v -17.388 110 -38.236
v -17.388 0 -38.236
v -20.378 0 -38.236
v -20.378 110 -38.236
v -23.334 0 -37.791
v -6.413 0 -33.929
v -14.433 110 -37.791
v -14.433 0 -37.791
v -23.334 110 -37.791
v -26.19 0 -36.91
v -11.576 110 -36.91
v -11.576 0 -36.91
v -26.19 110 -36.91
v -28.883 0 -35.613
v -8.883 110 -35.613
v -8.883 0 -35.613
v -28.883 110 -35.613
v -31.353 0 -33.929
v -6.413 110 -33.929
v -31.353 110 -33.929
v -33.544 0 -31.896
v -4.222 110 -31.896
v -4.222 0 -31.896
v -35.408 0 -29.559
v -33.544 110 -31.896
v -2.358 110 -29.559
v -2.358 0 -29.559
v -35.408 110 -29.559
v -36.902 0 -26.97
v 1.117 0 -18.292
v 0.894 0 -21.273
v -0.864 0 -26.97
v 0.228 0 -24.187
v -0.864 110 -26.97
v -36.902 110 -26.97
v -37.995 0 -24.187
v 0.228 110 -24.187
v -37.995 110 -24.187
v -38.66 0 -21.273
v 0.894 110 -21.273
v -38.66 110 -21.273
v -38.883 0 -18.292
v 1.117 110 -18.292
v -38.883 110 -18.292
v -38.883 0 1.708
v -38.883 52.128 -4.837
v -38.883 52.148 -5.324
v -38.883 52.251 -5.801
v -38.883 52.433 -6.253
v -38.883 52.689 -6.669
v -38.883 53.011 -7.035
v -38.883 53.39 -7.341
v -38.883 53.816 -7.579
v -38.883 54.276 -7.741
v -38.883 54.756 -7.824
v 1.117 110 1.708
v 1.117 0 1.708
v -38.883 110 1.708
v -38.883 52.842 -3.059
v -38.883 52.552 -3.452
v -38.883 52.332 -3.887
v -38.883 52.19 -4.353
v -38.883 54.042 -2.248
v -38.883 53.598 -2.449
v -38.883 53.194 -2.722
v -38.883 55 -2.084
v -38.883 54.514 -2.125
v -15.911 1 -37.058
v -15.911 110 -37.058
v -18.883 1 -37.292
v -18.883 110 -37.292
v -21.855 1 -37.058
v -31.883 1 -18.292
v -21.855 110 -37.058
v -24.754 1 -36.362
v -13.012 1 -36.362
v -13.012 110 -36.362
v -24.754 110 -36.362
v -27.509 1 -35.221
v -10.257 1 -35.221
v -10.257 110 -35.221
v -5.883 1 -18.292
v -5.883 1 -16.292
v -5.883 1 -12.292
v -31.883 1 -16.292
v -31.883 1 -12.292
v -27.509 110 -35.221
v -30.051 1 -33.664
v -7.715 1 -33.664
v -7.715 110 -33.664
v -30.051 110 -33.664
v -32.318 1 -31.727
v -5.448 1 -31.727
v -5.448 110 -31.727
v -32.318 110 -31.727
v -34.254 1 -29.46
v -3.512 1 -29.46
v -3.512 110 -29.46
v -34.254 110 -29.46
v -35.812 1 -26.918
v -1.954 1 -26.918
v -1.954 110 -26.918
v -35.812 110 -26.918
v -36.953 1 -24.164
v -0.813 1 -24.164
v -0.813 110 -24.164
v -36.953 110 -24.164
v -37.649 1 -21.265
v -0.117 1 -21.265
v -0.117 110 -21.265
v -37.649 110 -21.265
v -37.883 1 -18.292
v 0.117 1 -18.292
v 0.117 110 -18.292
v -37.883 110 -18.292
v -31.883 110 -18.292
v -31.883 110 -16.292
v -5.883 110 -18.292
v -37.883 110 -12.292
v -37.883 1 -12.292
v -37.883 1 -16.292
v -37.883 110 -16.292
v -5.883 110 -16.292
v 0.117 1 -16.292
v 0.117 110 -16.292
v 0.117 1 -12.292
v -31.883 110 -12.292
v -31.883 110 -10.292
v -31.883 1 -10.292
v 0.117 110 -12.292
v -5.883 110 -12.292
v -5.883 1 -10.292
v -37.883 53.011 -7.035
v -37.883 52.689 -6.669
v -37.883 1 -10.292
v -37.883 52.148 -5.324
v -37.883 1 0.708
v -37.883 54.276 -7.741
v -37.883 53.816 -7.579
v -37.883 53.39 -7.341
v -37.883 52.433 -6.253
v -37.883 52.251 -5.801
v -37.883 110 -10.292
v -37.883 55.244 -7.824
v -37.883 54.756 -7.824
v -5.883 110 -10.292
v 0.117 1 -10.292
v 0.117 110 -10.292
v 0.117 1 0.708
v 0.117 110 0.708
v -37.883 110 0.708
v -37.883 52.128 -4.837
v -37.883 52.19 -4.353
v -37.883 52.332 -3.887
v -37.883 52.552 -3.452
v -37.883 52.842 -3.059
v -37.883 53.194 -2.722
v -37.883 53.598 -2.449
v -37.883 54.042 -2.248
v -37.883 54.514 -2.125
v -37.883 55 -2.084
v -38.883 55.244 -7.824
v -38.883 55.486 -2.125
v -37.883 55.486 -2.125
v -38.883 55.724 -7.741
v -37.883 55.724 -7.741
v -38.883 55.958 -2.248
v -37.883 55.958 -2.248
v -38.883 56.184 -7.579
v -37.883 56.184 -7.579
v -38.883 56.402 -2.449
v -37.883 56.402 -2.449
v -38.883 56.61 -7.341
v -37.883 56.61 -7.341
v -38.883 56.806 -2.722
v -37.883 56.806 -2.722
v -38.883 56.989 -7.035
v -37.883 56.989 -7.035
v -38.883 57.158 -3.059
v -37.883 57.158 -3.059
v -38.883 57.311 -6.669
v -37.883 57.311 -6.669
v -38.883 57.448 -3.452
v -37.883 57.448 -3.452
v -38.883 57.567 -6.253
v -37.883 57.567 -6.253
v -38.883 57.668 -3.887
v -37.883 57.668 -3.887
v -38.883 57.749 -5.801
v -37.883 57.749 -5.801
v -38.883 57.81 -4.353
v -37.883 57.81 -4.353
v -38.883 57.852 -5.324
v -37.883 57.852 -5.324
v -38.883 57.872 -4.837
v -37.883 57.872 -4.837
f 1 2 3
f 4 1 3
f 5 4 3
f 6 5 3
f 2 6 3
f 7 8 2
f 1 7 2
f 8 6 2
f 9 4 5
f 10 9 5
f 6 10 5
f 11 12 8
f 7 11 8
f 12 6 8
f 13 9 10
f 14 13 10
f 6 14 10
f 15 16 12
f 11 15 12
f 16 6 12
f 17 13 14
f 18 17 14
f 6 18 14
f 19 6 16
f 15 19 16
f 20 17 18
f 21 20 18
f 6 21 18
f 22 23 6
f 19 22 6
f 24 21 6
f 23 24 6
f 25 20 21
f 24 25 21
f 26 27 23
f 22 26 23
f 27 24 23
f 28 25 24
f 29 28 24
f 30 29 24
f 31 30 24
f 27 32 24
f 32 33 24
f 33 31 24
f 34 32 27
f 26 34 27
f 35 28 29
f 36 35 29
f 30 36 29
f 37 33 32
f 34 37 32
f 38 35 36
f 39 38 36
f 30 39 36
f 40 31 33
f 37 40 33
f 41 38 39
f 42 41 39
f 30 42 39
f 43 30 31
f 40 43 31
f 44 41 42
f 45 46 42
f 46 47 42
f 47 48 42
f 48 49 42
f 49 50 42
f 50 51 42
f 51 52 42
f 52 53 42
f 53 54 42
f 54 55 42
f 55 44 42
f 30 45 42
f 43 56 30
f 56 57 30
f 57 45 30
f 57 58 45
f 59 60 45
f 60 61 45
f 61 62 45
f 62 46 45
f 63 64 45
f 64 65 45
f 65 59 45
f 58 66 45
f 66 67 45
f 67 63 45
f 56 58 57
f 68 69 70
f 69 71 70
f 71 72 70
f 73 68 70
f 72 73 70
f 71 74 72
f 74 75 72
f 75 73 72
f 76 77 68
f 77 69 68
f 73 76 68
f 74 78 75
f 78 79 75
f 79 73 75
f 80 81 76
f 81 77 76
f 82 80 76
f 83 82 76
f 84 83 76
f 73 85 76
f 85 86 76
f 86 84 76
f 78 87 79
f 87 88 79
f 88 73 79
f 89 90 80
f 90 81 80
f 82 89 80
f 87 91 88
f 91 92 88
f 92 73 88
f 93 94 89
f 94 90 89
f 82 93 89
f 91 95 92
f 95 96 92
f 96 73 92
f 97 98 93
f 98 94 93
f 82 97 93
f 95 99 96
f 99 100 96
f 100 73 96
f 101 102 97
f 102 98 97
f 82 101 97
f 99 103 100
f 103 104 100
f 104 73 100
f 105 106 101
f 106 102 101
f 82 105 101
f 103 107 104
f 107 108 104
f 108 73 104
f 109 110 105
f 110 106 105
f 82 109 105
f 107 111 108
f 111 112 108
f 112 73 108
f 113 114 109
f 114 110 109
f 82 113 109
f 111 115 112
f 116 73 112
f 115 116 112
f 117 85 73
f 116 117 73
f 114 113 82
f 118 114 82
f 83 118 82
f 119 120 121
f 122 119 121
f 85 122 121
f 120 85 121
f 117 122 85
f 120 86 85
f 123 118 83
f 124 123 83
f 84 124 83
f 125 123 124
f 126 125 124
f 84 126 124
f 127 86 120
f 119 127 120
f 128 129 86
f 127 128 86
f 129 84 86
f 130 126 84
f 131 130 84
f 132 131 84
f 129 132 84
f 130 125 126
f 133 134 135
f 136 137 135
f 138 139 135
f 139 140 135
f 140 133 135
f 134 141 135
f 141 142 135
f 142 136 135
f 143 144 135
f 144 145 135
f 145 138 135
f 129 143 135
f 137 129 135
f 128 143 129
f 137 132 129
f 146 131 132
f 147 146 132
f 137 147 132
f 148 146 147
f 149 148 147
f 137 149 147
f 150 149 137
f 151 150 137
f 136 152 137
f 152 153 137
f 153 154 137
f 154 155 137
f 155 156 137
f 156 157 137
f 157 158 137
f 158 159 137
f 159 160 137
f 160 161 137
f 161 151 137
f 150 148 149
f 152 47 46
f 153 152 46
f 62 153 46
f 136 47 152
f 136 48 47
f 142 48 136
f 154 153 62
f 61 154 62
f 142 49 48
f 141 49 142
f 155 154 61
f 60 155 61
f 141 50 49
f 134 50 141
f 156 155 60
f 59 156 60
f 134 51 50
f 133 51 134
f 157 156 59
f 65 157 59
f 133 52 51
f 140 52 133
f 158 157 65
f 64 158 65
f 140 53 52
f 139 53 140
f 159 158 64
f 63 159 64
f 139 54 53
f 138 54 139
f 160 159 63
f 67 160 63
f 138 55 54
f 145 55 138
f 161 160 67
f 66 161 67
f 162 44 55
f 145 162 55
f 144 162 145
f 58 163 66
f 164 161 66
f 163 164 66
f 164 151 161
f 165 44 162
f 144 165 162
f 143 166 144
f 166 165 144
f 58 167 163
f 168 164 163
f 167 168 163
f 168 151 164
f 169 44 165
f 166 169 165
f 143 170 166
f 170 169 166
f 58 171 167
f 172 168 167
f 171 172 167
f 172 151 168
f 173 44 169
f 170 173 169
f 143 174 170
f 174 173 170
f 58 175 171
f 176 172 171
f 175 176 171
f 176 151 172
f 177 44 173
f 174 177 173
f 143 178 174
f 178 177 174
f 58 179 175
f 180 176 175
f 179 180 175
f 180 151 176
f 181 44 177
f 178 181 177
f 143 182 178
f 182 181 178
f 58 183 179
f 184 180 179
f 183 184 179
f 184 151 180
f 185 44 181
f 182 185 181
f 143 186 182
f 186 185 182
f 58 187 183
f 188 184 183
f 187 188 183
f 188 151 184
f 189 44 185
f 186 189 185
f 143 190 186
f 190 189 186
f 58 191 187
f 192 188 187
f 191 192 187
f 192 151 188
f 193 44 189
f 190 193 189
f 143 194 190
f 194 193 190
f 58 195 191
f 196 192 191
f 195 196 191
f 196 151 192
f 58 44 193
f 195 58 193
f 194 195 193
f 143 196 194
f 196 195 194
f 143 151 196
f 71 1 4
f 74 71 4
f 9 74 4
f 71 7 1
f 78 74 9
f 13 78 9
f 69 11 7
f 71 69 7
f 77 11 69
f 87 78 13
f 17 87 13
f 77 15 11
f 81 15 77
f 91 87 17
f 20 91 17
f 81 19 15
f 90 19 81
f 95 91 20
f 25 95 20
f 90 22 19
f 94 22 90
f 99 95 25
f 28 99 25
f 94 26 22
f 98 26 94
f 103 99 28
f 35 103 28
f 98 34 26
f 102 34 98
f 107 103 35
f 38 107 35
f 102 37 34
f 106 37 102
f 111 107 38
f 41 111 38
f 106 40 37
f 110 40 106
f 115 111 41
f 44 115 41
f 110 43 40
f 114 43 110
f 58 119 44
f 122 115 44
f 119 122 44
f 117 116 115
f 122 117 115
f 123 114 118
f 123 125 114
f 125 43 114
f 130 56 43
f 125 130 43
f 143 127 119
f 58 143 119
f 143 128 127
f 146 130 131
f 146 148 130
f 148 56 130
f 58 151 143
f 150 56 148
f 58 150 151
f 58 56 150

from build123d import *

# Parameters (mm, degrees)
BOSS_EXTRUDE1_DEPTH = 110
CUT_EXTRUDE1_DEPTH  = 109
SKETCH3_R           = 2.875
CUT_EXTRUDE2_DEPTH  = 5


with BuildPart() as part:
    # Sketch1 → Boss-Extrude1 (new body)
    with BuildSketch(Plane(origin=(0, 0, 0), x_dir=(1, 0, 0), z_dir=(0, 1, 0))):
        with BuildLine():
            Line((-38.883093525, -1.707733813), (1.116906475, -1.707733813))
            Line((1.116906475, -1.707733813), (1.116906475, 18.292266187))
            ThreePointArc((1.116906475, 18.292266187), (-18.883093525, 38.292266187), (-38.883093525, 18.292266187))
            Line((-38.883093525, 18.292266187), (-38.883093525, -1.707733813))
        make_face()
    extrude(amount=BOSS_EXTRUDE1_DEPTH)

    # Sketch2 → Cut-Extrude1 (cut)
    with BuildSketch(Plane(origin=(0, 110, 0), x_dir=(1, 0, 0), z_dir=(0, 1, 0))):
        with BuildLine():
            Line((-37.883093525, 16.292266187), (-37.883093525, 12.292266187))
            Line((-37.883093525, 12.292266187), (-31.883093525, 12.292266187))
            Line((-31.883093525, 12.292266187), (-31.883093525, 10.292266187))
            Line((-31.883093525, 10.292266187), (-37.883093525, 10.292266187))
            Line((-37.883093525, 10.292266187), (-37.883093525, -0.707733813))
            Line((-37.883093525, -0.707733813), (0.116906475, -0.707733813))
            Line((0.116906475, -0.707733813), (0.116906475, 10.292266187))
            Line((0.116906475, 10.292266187), (-5.883093525, 10.292266187))
            Line((-5.883093525, 10.292266187), (-5.883093525, 12.292266187))
            Line((-5.883093525, 12.292266187), (0.116906475, 12.292266187))
            Line((0.116906475, 12.292266187), (0.116906475, 16.292266187))
            Line((0.116906475, 16.292266187), (-5.883093525, 16.292266187))
            Line((-5.883093525, 16.292266187), (-5.883093525, 18.292266187))
            Line((-5.883093525, 18.292266187), (0.116906475, 18.292266187))
            ThreePointArc((0.116906475, 18.292266187), (-18.883093525, 37.292266187), (-37.883093525, 18.292266187))
            Line((-37.883093525, 18.292266187), (-31.883093525, 18.292266187))
            Line((-31.883093525, 18.292266187), (-31.883093525, 16.292266187))
            Line((-31.883093525, 16.292266187), (-37.883093525, 16.292266187))
        make_face()
    extrude(amount=-CUT_EXTRUDE1_DEPTH, mode=Mode.SUBTRACT)

    # Sketch3 → Cut-Extrude2 (cut)
    with BuildSketch(Plane.ZY.offset(38.883093525)):
        with Locations((-4.958932854, 55)):
            Circle(SKETCH3_R)
    extrude(amount=-CUT_EXTRUDE2_DEPTH, mode=Mode.SUBTRACT)


solid = part.part
